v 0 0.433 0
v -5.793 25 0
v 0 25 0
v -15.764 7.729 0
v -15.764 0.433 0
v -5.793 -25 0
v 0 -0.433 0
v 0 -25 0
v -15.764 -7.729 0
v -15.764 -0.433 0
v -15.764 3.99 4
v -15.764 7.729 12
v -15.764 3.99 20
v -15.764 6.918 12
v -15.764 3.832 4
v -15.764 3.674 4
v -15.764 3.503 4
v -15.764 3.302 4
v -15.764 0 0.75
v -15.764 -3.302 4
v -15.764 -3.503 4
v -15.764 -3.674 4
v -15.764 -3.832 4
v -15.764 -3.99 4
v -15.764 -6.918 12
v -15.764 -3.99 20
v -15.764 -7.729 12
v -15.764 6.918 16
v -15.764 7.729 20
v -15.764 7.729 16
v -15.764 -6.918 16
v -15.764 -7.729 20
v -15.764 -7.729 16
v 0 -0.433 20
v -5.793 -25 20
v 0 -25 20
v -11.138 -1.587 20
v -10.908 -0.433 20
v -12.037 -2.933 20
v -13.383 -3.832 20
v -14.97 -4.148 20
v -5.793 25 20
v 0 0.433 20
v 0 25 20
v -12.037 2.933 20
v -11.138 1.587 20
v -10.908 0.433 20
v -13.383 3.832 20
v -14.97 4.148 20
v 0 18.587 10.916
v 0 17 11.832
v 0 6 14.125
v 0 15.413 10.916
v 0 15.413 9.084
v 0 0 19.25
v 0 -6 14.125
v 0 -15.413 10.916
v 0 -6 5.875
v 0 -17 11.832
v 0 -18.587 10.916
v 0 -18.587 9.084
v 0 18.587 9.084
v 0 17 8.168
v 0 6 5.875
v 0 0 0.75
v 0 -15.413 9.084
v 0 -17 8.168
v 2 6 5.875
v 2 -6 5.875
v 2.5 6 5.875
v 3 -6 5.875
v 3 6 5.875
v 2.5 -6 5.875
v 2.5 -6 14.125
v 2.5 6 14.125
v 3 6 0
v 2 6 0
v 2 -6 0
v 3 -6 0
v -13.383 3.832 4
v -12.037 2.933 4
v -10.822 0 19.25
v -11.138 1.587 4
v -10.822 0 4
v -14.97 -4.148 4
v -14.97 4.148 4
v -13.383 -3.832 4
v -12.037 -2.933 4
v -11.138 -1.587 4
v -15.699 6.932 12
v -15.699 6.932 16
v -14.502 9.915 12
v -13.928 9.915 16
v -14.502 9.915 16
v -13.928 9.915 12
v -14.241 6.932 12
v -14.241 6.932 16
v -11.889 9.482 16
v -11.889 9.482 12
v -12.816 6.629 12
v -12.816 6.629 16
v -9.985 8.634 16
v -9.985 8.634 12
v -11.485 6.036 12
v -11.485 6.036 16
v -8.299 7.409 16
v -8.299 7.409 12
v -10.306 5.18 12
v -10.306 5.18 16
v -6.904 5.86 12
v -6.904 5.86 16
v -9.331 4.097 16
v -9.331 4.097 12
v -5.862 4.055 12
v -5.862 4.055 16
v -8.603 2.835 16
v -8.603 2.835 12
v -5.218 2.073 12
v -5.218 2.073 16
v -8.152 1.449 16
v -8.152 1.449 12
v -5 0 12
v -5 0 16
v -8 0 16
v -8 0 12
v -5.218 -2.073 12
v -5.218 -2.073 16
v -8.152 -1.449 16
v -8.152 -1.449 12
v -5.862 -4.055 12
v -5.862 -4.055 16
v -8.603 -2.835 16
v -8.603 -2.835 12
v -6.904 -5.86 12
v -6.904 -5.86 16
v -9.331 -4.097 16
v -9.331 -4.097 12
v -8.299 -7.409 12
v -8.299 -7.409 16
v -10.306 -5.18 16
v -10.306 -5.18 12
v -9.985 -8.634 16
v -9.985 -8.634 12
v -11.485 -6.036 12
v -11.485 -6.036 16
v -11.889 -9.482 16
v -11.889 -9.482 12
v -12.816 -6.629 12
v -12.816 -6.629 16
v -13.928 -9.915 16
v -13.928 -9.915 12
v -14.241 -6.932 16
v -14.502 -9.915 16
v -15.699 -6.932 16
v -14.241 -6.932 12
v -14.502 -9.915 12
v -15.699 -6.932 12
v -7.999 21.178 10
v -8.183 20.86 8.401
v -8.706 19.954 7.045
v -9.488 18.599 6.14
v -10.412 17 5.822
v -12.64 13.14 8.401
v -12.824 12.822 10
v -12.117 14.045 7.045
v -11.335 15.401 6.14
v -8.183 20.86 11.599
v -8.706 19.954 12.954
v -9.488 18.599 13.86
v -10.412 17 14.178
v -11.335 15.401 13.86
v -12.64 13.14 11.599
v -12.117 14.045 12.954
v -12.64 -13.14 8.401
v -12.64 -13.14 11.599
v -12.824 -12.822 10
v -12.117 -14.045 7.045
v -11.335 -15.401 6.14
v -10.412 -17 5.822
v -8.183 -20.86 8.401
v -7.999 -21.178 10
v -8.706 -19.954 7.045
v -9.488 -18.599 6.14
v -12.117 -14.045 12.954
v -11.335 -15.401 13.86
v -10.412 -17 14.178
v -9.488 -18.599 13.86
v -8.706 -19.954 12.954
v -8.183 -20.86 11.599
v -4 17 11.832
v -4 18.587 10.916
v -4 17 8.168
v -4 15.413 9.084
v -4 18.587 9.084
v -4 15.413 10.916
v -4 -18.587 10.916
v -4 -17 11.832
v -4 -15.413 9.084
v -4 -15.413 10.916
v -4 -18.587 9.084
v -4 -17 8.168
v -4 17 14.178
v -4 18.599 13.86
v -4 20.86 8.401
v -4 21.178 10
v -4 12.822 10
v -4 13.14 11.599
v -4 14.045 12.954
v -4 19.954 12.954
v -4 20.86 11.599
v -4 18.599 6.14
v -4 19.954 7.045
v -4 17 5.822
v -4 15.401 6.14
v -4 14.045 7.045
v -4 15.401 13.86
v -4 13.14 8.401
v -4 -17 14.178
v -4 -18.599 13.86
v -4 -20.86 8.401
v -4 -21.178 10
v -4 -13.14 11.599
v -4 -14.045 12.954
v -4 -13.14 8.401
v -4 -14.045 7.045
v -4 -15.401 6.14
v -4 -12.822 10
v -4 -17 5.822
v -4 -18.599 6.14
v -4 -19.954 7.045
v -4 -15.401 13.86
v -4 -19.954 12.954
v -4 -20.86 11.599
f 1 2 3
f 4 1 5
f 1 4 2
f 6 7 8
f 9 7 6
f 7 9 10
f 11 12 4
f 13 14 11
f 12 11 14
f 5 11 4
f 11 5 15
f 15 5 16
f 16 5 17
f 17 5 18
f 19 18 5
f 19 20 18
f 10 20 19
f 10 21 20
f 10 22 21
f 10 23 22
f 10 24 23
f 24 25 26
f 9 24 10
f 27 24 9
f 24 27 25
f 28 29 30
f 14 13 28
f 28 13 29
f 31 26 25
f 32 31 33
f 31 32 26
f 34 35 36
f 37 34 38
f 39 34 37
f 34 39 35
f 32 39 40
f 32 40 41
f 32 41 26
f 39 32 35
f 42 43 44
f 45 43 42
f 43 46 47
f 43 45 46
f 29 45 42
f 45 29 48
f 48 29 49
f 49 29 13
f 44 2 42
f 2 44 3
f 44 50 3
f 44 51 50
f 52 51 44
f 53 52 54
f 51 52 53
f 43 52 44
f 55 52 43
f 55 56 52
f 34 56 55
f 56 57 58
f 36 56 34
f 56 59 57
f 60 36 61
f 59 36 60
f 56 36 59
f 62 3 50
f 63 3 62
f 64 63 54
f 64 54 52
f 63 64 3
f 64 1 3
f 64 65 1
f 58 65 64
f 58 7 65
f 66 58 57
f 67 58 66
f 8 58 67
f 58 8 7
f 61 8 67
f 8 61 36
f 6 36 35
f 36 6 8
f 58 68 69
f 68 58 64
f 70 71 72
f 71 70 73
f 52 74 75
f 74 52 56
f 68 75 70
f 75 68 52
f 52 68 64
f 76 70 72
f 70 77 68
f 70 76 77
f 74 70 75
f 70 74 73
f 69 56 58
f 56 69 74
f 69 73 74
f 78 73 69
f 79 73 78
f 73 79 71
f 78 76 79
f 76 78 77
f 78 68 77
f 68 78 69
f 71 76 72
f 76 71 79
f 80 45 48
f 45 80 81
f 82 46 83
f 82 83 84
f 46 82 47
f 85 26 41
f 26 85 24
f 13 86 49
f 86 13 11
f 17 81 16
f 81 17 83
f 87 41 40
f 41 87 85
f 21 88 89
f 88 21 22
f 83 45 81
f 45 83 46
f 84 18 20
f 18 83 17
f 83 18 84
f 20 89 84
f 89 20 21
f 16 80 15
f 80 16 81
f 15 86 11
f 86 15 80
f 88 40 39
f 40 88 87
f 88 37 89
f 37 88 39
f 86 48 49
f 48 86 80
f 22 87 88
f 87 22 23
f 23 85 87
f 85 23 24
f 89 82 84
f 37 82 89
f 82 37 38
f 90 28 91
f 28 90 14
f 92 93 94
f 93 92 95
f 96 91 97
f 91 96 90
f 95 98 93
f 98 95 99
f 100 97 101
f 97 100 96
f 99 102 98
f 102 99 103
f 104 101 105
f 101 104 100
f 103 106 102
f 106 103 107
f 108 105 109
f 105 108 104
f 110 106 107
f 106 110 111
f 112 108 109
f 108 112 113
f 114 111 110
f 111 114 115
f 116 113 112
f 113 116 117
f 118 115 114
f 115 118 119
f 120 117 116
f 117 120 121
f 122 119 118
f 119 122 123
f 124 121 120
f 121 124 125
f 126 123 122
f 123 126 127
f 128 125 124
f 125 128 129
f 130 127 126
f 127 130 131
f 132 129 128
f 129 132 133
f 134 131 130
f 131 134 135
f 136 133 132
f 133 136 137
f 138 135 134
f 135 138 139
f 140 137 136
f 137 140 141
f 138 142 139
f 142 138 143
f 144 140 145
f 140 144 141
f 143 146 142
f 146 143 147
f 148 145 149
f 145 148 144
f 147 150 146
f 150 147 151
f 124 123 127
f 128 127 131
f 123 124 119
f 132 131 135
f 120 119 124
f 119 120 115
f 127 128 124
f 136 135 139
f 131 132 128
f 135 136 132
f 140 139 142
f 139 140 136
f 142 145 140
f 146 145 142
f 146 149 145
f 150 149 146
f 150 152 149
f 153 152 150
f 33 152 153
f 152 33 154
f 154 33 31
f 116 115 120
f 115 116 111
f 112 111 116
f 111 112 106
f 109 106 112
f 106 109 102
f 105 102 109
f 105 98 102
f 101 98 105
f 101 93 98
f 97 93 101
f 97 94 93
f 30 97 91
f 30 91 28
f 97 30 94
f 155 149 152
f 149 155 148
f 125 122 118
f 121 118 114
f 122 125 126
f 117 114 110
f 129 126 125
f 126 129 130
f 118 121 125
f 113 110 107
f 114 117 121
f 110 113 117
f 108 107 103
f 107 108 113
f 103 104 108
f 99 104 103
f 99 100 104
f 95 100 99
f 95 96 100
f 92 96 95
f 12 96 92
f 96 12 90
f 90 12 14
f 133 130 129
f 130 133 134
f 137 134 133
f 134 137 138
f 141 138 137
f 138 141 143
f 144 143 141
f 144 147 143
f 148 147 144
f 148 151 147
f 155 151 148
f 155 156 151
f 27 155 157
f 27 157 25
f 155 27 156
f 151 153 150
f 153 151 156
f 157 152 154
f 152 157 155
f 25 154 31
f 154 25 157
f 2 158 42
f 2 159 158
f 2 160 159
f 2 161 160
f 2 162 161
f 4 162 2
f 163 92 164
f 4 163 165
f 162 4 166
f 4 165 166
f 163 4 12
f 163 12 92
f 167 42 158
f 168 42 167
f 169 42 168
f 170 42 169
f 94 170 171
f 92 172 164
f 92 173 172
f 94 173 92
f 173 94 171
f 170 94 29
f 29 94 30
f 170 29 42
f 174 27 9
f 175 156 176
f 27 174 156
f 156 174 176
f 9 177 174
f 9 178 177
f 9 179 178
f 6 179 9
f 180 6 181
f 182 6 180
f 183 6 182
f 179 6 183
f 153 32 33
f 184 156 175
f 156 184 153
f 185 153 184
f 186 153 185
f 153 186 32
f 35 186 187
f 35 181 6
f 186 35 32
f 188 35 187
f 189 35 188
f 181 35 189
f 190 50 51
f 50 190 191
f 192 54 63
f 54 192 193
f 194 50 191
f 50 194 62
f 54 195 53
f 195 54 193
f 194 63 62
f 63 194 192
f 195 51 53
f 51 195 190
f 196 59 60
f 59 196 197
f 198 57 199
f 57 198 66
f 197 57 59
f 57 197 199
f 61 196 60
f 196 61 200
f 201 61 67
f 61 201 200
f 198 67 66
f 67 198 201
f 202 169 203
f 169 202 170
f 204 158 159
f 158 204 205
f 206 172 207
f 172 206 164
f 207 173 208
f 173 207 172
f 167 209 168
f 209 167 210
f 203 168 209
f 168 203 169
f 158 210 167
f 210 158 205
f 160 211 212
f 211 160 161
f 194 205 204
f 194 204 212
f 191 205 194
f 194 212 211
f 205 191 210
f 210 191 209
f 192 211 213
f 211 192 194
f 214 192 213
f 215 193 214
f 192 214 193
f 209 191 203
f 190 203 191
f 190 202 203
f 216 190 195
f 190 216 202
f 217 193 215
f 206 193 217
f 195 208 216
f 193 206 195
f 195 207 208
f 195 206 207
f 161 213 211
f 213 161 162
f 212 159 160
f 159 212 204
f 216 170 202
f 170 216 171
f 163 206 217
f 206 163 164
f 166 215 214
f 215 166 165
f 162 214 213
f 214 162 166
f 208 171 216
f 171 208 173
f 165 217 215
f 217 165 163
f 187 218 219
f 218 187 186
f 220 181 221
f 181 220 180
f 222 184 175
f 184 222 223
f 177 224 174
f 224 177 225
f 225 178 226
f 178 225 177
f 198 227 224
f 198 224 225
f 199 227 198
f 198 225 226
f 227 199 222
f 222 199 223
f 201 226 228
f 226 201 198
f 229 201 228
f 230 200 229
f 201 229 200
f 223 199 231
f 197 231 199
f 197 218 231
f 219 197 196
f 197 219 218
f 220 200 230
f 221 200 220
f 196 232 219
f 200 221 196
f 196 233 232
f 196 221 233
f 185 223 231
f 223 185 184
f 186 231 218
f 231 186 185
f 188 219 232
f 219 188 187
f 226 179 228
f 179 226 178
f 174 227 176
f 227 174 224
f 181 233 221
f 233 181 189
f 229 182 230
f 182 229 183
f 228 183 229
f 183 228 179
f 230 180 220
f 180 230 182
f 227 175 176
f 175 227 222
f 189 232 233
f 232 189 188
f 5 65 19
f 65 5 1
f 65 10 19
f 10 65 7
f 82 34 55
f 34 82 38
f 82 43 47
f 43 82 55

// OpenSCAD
// file: polyholes.scad
//Original Prusa

//
// Mendel90
//
// GNU GPL v2
// nop.head@gmail.com
// hydraraptor.blogspot.com
//
// See http://hydraraptor.blogspot.com/2011/02/polyholes.html
//
function sides(r) = max(round(4 *r),3);
function correctedRadius(r,n) = 0.1 + r / cos(180 / n);
function correctedDiameter(d) = 0.2 + d / cos(180 / sides(d / 2));

module polyCircle(r, center = false) {
    n = sides(r);
    circle(r = correctedRadius(r,n), $fn = n, center = center);
}

module poly_circle(r, center = false) {
	polyCircle(r, center);
}

module polyCylinder(r, h, center = false) {
    n = sides(r);
    cylinder(h = h, r = correctedRadius(r,n), $fn = n, center = center);
}

module poly_cylinder(r, h, center = false) {
	polyCylinder(r,h,center);
}

module polydCylinder(r, center = false) {
    n = sides(r);
    r = correctedRadius(r,n);
    cylinder(h = h, r = r, $fn = n, center = center);
    translate([0, -r, 0])
        cube([r, 2 * r, h]);
}

module poly_d_cylinder(r, center = false) {
	polydCylinder(r,center);
}
// main file
use <polyholes.scad>

rod_diam = 7.94;
screw_diam = 3.0;

module y_rod_base() {
    // Main base
    translate([0,-50/2,0]) cube([20,50,11+rod_diam*0.6]);
    
    // Rail guide + support
    translate([10-8.25/2,-12/2,-2.5]) cube([8.25,12,4]);
    translate([0,-12/2,-3]) cube([(20-8.25)/2,12,1]);
}

module y_rod_holes() {
    
    // Rod cutout
    translate([4,0,11+rod_diam/2]) rotate([0,90,0]) poly_cylinder(r=rod_diam/2, h=100, $fn=90);
    
    // Ziptie cutout
    translate([12,0,11+rod_diam/2]) rotate([0,90,0]) rotate_extrude(angle=360) translate([rod_diam/2+3,0]) square([3,4]);
    
    for (i = [0:1]) {
        // Top angle cutout
        mirror([0,i,0]) translate([-10,-10,26]) rotate([-30,0,0]) cube([100,100,100]);
        
        // Screw hole
        mirror([0,i,0]) translate([10,17,-1]) rotate([0,0,0]) poly_cylinder(r=screw_diam/2, h=100);
        
        // Screw head cutout
        mirror([0,i,0]) translate([10,17,4]) rotate([0,0,0]) poly_cylinder(r=8/2, h=100);
    }
    
    // Center marker cutouts
    translate([0,0,-1]) rotate([0,0,0]) cylinder(d=1.5, h=100, $fn=3);
    translate([20,0,-1]) rotate([0,0,180]) cylinder(d=1.5, h=100, $fn=3);
}

module y_rod() {
    difference() {
        y_rod_base();
        y_rod_holes();
    }
}

rotate([0,-90,0]) y_rod();
